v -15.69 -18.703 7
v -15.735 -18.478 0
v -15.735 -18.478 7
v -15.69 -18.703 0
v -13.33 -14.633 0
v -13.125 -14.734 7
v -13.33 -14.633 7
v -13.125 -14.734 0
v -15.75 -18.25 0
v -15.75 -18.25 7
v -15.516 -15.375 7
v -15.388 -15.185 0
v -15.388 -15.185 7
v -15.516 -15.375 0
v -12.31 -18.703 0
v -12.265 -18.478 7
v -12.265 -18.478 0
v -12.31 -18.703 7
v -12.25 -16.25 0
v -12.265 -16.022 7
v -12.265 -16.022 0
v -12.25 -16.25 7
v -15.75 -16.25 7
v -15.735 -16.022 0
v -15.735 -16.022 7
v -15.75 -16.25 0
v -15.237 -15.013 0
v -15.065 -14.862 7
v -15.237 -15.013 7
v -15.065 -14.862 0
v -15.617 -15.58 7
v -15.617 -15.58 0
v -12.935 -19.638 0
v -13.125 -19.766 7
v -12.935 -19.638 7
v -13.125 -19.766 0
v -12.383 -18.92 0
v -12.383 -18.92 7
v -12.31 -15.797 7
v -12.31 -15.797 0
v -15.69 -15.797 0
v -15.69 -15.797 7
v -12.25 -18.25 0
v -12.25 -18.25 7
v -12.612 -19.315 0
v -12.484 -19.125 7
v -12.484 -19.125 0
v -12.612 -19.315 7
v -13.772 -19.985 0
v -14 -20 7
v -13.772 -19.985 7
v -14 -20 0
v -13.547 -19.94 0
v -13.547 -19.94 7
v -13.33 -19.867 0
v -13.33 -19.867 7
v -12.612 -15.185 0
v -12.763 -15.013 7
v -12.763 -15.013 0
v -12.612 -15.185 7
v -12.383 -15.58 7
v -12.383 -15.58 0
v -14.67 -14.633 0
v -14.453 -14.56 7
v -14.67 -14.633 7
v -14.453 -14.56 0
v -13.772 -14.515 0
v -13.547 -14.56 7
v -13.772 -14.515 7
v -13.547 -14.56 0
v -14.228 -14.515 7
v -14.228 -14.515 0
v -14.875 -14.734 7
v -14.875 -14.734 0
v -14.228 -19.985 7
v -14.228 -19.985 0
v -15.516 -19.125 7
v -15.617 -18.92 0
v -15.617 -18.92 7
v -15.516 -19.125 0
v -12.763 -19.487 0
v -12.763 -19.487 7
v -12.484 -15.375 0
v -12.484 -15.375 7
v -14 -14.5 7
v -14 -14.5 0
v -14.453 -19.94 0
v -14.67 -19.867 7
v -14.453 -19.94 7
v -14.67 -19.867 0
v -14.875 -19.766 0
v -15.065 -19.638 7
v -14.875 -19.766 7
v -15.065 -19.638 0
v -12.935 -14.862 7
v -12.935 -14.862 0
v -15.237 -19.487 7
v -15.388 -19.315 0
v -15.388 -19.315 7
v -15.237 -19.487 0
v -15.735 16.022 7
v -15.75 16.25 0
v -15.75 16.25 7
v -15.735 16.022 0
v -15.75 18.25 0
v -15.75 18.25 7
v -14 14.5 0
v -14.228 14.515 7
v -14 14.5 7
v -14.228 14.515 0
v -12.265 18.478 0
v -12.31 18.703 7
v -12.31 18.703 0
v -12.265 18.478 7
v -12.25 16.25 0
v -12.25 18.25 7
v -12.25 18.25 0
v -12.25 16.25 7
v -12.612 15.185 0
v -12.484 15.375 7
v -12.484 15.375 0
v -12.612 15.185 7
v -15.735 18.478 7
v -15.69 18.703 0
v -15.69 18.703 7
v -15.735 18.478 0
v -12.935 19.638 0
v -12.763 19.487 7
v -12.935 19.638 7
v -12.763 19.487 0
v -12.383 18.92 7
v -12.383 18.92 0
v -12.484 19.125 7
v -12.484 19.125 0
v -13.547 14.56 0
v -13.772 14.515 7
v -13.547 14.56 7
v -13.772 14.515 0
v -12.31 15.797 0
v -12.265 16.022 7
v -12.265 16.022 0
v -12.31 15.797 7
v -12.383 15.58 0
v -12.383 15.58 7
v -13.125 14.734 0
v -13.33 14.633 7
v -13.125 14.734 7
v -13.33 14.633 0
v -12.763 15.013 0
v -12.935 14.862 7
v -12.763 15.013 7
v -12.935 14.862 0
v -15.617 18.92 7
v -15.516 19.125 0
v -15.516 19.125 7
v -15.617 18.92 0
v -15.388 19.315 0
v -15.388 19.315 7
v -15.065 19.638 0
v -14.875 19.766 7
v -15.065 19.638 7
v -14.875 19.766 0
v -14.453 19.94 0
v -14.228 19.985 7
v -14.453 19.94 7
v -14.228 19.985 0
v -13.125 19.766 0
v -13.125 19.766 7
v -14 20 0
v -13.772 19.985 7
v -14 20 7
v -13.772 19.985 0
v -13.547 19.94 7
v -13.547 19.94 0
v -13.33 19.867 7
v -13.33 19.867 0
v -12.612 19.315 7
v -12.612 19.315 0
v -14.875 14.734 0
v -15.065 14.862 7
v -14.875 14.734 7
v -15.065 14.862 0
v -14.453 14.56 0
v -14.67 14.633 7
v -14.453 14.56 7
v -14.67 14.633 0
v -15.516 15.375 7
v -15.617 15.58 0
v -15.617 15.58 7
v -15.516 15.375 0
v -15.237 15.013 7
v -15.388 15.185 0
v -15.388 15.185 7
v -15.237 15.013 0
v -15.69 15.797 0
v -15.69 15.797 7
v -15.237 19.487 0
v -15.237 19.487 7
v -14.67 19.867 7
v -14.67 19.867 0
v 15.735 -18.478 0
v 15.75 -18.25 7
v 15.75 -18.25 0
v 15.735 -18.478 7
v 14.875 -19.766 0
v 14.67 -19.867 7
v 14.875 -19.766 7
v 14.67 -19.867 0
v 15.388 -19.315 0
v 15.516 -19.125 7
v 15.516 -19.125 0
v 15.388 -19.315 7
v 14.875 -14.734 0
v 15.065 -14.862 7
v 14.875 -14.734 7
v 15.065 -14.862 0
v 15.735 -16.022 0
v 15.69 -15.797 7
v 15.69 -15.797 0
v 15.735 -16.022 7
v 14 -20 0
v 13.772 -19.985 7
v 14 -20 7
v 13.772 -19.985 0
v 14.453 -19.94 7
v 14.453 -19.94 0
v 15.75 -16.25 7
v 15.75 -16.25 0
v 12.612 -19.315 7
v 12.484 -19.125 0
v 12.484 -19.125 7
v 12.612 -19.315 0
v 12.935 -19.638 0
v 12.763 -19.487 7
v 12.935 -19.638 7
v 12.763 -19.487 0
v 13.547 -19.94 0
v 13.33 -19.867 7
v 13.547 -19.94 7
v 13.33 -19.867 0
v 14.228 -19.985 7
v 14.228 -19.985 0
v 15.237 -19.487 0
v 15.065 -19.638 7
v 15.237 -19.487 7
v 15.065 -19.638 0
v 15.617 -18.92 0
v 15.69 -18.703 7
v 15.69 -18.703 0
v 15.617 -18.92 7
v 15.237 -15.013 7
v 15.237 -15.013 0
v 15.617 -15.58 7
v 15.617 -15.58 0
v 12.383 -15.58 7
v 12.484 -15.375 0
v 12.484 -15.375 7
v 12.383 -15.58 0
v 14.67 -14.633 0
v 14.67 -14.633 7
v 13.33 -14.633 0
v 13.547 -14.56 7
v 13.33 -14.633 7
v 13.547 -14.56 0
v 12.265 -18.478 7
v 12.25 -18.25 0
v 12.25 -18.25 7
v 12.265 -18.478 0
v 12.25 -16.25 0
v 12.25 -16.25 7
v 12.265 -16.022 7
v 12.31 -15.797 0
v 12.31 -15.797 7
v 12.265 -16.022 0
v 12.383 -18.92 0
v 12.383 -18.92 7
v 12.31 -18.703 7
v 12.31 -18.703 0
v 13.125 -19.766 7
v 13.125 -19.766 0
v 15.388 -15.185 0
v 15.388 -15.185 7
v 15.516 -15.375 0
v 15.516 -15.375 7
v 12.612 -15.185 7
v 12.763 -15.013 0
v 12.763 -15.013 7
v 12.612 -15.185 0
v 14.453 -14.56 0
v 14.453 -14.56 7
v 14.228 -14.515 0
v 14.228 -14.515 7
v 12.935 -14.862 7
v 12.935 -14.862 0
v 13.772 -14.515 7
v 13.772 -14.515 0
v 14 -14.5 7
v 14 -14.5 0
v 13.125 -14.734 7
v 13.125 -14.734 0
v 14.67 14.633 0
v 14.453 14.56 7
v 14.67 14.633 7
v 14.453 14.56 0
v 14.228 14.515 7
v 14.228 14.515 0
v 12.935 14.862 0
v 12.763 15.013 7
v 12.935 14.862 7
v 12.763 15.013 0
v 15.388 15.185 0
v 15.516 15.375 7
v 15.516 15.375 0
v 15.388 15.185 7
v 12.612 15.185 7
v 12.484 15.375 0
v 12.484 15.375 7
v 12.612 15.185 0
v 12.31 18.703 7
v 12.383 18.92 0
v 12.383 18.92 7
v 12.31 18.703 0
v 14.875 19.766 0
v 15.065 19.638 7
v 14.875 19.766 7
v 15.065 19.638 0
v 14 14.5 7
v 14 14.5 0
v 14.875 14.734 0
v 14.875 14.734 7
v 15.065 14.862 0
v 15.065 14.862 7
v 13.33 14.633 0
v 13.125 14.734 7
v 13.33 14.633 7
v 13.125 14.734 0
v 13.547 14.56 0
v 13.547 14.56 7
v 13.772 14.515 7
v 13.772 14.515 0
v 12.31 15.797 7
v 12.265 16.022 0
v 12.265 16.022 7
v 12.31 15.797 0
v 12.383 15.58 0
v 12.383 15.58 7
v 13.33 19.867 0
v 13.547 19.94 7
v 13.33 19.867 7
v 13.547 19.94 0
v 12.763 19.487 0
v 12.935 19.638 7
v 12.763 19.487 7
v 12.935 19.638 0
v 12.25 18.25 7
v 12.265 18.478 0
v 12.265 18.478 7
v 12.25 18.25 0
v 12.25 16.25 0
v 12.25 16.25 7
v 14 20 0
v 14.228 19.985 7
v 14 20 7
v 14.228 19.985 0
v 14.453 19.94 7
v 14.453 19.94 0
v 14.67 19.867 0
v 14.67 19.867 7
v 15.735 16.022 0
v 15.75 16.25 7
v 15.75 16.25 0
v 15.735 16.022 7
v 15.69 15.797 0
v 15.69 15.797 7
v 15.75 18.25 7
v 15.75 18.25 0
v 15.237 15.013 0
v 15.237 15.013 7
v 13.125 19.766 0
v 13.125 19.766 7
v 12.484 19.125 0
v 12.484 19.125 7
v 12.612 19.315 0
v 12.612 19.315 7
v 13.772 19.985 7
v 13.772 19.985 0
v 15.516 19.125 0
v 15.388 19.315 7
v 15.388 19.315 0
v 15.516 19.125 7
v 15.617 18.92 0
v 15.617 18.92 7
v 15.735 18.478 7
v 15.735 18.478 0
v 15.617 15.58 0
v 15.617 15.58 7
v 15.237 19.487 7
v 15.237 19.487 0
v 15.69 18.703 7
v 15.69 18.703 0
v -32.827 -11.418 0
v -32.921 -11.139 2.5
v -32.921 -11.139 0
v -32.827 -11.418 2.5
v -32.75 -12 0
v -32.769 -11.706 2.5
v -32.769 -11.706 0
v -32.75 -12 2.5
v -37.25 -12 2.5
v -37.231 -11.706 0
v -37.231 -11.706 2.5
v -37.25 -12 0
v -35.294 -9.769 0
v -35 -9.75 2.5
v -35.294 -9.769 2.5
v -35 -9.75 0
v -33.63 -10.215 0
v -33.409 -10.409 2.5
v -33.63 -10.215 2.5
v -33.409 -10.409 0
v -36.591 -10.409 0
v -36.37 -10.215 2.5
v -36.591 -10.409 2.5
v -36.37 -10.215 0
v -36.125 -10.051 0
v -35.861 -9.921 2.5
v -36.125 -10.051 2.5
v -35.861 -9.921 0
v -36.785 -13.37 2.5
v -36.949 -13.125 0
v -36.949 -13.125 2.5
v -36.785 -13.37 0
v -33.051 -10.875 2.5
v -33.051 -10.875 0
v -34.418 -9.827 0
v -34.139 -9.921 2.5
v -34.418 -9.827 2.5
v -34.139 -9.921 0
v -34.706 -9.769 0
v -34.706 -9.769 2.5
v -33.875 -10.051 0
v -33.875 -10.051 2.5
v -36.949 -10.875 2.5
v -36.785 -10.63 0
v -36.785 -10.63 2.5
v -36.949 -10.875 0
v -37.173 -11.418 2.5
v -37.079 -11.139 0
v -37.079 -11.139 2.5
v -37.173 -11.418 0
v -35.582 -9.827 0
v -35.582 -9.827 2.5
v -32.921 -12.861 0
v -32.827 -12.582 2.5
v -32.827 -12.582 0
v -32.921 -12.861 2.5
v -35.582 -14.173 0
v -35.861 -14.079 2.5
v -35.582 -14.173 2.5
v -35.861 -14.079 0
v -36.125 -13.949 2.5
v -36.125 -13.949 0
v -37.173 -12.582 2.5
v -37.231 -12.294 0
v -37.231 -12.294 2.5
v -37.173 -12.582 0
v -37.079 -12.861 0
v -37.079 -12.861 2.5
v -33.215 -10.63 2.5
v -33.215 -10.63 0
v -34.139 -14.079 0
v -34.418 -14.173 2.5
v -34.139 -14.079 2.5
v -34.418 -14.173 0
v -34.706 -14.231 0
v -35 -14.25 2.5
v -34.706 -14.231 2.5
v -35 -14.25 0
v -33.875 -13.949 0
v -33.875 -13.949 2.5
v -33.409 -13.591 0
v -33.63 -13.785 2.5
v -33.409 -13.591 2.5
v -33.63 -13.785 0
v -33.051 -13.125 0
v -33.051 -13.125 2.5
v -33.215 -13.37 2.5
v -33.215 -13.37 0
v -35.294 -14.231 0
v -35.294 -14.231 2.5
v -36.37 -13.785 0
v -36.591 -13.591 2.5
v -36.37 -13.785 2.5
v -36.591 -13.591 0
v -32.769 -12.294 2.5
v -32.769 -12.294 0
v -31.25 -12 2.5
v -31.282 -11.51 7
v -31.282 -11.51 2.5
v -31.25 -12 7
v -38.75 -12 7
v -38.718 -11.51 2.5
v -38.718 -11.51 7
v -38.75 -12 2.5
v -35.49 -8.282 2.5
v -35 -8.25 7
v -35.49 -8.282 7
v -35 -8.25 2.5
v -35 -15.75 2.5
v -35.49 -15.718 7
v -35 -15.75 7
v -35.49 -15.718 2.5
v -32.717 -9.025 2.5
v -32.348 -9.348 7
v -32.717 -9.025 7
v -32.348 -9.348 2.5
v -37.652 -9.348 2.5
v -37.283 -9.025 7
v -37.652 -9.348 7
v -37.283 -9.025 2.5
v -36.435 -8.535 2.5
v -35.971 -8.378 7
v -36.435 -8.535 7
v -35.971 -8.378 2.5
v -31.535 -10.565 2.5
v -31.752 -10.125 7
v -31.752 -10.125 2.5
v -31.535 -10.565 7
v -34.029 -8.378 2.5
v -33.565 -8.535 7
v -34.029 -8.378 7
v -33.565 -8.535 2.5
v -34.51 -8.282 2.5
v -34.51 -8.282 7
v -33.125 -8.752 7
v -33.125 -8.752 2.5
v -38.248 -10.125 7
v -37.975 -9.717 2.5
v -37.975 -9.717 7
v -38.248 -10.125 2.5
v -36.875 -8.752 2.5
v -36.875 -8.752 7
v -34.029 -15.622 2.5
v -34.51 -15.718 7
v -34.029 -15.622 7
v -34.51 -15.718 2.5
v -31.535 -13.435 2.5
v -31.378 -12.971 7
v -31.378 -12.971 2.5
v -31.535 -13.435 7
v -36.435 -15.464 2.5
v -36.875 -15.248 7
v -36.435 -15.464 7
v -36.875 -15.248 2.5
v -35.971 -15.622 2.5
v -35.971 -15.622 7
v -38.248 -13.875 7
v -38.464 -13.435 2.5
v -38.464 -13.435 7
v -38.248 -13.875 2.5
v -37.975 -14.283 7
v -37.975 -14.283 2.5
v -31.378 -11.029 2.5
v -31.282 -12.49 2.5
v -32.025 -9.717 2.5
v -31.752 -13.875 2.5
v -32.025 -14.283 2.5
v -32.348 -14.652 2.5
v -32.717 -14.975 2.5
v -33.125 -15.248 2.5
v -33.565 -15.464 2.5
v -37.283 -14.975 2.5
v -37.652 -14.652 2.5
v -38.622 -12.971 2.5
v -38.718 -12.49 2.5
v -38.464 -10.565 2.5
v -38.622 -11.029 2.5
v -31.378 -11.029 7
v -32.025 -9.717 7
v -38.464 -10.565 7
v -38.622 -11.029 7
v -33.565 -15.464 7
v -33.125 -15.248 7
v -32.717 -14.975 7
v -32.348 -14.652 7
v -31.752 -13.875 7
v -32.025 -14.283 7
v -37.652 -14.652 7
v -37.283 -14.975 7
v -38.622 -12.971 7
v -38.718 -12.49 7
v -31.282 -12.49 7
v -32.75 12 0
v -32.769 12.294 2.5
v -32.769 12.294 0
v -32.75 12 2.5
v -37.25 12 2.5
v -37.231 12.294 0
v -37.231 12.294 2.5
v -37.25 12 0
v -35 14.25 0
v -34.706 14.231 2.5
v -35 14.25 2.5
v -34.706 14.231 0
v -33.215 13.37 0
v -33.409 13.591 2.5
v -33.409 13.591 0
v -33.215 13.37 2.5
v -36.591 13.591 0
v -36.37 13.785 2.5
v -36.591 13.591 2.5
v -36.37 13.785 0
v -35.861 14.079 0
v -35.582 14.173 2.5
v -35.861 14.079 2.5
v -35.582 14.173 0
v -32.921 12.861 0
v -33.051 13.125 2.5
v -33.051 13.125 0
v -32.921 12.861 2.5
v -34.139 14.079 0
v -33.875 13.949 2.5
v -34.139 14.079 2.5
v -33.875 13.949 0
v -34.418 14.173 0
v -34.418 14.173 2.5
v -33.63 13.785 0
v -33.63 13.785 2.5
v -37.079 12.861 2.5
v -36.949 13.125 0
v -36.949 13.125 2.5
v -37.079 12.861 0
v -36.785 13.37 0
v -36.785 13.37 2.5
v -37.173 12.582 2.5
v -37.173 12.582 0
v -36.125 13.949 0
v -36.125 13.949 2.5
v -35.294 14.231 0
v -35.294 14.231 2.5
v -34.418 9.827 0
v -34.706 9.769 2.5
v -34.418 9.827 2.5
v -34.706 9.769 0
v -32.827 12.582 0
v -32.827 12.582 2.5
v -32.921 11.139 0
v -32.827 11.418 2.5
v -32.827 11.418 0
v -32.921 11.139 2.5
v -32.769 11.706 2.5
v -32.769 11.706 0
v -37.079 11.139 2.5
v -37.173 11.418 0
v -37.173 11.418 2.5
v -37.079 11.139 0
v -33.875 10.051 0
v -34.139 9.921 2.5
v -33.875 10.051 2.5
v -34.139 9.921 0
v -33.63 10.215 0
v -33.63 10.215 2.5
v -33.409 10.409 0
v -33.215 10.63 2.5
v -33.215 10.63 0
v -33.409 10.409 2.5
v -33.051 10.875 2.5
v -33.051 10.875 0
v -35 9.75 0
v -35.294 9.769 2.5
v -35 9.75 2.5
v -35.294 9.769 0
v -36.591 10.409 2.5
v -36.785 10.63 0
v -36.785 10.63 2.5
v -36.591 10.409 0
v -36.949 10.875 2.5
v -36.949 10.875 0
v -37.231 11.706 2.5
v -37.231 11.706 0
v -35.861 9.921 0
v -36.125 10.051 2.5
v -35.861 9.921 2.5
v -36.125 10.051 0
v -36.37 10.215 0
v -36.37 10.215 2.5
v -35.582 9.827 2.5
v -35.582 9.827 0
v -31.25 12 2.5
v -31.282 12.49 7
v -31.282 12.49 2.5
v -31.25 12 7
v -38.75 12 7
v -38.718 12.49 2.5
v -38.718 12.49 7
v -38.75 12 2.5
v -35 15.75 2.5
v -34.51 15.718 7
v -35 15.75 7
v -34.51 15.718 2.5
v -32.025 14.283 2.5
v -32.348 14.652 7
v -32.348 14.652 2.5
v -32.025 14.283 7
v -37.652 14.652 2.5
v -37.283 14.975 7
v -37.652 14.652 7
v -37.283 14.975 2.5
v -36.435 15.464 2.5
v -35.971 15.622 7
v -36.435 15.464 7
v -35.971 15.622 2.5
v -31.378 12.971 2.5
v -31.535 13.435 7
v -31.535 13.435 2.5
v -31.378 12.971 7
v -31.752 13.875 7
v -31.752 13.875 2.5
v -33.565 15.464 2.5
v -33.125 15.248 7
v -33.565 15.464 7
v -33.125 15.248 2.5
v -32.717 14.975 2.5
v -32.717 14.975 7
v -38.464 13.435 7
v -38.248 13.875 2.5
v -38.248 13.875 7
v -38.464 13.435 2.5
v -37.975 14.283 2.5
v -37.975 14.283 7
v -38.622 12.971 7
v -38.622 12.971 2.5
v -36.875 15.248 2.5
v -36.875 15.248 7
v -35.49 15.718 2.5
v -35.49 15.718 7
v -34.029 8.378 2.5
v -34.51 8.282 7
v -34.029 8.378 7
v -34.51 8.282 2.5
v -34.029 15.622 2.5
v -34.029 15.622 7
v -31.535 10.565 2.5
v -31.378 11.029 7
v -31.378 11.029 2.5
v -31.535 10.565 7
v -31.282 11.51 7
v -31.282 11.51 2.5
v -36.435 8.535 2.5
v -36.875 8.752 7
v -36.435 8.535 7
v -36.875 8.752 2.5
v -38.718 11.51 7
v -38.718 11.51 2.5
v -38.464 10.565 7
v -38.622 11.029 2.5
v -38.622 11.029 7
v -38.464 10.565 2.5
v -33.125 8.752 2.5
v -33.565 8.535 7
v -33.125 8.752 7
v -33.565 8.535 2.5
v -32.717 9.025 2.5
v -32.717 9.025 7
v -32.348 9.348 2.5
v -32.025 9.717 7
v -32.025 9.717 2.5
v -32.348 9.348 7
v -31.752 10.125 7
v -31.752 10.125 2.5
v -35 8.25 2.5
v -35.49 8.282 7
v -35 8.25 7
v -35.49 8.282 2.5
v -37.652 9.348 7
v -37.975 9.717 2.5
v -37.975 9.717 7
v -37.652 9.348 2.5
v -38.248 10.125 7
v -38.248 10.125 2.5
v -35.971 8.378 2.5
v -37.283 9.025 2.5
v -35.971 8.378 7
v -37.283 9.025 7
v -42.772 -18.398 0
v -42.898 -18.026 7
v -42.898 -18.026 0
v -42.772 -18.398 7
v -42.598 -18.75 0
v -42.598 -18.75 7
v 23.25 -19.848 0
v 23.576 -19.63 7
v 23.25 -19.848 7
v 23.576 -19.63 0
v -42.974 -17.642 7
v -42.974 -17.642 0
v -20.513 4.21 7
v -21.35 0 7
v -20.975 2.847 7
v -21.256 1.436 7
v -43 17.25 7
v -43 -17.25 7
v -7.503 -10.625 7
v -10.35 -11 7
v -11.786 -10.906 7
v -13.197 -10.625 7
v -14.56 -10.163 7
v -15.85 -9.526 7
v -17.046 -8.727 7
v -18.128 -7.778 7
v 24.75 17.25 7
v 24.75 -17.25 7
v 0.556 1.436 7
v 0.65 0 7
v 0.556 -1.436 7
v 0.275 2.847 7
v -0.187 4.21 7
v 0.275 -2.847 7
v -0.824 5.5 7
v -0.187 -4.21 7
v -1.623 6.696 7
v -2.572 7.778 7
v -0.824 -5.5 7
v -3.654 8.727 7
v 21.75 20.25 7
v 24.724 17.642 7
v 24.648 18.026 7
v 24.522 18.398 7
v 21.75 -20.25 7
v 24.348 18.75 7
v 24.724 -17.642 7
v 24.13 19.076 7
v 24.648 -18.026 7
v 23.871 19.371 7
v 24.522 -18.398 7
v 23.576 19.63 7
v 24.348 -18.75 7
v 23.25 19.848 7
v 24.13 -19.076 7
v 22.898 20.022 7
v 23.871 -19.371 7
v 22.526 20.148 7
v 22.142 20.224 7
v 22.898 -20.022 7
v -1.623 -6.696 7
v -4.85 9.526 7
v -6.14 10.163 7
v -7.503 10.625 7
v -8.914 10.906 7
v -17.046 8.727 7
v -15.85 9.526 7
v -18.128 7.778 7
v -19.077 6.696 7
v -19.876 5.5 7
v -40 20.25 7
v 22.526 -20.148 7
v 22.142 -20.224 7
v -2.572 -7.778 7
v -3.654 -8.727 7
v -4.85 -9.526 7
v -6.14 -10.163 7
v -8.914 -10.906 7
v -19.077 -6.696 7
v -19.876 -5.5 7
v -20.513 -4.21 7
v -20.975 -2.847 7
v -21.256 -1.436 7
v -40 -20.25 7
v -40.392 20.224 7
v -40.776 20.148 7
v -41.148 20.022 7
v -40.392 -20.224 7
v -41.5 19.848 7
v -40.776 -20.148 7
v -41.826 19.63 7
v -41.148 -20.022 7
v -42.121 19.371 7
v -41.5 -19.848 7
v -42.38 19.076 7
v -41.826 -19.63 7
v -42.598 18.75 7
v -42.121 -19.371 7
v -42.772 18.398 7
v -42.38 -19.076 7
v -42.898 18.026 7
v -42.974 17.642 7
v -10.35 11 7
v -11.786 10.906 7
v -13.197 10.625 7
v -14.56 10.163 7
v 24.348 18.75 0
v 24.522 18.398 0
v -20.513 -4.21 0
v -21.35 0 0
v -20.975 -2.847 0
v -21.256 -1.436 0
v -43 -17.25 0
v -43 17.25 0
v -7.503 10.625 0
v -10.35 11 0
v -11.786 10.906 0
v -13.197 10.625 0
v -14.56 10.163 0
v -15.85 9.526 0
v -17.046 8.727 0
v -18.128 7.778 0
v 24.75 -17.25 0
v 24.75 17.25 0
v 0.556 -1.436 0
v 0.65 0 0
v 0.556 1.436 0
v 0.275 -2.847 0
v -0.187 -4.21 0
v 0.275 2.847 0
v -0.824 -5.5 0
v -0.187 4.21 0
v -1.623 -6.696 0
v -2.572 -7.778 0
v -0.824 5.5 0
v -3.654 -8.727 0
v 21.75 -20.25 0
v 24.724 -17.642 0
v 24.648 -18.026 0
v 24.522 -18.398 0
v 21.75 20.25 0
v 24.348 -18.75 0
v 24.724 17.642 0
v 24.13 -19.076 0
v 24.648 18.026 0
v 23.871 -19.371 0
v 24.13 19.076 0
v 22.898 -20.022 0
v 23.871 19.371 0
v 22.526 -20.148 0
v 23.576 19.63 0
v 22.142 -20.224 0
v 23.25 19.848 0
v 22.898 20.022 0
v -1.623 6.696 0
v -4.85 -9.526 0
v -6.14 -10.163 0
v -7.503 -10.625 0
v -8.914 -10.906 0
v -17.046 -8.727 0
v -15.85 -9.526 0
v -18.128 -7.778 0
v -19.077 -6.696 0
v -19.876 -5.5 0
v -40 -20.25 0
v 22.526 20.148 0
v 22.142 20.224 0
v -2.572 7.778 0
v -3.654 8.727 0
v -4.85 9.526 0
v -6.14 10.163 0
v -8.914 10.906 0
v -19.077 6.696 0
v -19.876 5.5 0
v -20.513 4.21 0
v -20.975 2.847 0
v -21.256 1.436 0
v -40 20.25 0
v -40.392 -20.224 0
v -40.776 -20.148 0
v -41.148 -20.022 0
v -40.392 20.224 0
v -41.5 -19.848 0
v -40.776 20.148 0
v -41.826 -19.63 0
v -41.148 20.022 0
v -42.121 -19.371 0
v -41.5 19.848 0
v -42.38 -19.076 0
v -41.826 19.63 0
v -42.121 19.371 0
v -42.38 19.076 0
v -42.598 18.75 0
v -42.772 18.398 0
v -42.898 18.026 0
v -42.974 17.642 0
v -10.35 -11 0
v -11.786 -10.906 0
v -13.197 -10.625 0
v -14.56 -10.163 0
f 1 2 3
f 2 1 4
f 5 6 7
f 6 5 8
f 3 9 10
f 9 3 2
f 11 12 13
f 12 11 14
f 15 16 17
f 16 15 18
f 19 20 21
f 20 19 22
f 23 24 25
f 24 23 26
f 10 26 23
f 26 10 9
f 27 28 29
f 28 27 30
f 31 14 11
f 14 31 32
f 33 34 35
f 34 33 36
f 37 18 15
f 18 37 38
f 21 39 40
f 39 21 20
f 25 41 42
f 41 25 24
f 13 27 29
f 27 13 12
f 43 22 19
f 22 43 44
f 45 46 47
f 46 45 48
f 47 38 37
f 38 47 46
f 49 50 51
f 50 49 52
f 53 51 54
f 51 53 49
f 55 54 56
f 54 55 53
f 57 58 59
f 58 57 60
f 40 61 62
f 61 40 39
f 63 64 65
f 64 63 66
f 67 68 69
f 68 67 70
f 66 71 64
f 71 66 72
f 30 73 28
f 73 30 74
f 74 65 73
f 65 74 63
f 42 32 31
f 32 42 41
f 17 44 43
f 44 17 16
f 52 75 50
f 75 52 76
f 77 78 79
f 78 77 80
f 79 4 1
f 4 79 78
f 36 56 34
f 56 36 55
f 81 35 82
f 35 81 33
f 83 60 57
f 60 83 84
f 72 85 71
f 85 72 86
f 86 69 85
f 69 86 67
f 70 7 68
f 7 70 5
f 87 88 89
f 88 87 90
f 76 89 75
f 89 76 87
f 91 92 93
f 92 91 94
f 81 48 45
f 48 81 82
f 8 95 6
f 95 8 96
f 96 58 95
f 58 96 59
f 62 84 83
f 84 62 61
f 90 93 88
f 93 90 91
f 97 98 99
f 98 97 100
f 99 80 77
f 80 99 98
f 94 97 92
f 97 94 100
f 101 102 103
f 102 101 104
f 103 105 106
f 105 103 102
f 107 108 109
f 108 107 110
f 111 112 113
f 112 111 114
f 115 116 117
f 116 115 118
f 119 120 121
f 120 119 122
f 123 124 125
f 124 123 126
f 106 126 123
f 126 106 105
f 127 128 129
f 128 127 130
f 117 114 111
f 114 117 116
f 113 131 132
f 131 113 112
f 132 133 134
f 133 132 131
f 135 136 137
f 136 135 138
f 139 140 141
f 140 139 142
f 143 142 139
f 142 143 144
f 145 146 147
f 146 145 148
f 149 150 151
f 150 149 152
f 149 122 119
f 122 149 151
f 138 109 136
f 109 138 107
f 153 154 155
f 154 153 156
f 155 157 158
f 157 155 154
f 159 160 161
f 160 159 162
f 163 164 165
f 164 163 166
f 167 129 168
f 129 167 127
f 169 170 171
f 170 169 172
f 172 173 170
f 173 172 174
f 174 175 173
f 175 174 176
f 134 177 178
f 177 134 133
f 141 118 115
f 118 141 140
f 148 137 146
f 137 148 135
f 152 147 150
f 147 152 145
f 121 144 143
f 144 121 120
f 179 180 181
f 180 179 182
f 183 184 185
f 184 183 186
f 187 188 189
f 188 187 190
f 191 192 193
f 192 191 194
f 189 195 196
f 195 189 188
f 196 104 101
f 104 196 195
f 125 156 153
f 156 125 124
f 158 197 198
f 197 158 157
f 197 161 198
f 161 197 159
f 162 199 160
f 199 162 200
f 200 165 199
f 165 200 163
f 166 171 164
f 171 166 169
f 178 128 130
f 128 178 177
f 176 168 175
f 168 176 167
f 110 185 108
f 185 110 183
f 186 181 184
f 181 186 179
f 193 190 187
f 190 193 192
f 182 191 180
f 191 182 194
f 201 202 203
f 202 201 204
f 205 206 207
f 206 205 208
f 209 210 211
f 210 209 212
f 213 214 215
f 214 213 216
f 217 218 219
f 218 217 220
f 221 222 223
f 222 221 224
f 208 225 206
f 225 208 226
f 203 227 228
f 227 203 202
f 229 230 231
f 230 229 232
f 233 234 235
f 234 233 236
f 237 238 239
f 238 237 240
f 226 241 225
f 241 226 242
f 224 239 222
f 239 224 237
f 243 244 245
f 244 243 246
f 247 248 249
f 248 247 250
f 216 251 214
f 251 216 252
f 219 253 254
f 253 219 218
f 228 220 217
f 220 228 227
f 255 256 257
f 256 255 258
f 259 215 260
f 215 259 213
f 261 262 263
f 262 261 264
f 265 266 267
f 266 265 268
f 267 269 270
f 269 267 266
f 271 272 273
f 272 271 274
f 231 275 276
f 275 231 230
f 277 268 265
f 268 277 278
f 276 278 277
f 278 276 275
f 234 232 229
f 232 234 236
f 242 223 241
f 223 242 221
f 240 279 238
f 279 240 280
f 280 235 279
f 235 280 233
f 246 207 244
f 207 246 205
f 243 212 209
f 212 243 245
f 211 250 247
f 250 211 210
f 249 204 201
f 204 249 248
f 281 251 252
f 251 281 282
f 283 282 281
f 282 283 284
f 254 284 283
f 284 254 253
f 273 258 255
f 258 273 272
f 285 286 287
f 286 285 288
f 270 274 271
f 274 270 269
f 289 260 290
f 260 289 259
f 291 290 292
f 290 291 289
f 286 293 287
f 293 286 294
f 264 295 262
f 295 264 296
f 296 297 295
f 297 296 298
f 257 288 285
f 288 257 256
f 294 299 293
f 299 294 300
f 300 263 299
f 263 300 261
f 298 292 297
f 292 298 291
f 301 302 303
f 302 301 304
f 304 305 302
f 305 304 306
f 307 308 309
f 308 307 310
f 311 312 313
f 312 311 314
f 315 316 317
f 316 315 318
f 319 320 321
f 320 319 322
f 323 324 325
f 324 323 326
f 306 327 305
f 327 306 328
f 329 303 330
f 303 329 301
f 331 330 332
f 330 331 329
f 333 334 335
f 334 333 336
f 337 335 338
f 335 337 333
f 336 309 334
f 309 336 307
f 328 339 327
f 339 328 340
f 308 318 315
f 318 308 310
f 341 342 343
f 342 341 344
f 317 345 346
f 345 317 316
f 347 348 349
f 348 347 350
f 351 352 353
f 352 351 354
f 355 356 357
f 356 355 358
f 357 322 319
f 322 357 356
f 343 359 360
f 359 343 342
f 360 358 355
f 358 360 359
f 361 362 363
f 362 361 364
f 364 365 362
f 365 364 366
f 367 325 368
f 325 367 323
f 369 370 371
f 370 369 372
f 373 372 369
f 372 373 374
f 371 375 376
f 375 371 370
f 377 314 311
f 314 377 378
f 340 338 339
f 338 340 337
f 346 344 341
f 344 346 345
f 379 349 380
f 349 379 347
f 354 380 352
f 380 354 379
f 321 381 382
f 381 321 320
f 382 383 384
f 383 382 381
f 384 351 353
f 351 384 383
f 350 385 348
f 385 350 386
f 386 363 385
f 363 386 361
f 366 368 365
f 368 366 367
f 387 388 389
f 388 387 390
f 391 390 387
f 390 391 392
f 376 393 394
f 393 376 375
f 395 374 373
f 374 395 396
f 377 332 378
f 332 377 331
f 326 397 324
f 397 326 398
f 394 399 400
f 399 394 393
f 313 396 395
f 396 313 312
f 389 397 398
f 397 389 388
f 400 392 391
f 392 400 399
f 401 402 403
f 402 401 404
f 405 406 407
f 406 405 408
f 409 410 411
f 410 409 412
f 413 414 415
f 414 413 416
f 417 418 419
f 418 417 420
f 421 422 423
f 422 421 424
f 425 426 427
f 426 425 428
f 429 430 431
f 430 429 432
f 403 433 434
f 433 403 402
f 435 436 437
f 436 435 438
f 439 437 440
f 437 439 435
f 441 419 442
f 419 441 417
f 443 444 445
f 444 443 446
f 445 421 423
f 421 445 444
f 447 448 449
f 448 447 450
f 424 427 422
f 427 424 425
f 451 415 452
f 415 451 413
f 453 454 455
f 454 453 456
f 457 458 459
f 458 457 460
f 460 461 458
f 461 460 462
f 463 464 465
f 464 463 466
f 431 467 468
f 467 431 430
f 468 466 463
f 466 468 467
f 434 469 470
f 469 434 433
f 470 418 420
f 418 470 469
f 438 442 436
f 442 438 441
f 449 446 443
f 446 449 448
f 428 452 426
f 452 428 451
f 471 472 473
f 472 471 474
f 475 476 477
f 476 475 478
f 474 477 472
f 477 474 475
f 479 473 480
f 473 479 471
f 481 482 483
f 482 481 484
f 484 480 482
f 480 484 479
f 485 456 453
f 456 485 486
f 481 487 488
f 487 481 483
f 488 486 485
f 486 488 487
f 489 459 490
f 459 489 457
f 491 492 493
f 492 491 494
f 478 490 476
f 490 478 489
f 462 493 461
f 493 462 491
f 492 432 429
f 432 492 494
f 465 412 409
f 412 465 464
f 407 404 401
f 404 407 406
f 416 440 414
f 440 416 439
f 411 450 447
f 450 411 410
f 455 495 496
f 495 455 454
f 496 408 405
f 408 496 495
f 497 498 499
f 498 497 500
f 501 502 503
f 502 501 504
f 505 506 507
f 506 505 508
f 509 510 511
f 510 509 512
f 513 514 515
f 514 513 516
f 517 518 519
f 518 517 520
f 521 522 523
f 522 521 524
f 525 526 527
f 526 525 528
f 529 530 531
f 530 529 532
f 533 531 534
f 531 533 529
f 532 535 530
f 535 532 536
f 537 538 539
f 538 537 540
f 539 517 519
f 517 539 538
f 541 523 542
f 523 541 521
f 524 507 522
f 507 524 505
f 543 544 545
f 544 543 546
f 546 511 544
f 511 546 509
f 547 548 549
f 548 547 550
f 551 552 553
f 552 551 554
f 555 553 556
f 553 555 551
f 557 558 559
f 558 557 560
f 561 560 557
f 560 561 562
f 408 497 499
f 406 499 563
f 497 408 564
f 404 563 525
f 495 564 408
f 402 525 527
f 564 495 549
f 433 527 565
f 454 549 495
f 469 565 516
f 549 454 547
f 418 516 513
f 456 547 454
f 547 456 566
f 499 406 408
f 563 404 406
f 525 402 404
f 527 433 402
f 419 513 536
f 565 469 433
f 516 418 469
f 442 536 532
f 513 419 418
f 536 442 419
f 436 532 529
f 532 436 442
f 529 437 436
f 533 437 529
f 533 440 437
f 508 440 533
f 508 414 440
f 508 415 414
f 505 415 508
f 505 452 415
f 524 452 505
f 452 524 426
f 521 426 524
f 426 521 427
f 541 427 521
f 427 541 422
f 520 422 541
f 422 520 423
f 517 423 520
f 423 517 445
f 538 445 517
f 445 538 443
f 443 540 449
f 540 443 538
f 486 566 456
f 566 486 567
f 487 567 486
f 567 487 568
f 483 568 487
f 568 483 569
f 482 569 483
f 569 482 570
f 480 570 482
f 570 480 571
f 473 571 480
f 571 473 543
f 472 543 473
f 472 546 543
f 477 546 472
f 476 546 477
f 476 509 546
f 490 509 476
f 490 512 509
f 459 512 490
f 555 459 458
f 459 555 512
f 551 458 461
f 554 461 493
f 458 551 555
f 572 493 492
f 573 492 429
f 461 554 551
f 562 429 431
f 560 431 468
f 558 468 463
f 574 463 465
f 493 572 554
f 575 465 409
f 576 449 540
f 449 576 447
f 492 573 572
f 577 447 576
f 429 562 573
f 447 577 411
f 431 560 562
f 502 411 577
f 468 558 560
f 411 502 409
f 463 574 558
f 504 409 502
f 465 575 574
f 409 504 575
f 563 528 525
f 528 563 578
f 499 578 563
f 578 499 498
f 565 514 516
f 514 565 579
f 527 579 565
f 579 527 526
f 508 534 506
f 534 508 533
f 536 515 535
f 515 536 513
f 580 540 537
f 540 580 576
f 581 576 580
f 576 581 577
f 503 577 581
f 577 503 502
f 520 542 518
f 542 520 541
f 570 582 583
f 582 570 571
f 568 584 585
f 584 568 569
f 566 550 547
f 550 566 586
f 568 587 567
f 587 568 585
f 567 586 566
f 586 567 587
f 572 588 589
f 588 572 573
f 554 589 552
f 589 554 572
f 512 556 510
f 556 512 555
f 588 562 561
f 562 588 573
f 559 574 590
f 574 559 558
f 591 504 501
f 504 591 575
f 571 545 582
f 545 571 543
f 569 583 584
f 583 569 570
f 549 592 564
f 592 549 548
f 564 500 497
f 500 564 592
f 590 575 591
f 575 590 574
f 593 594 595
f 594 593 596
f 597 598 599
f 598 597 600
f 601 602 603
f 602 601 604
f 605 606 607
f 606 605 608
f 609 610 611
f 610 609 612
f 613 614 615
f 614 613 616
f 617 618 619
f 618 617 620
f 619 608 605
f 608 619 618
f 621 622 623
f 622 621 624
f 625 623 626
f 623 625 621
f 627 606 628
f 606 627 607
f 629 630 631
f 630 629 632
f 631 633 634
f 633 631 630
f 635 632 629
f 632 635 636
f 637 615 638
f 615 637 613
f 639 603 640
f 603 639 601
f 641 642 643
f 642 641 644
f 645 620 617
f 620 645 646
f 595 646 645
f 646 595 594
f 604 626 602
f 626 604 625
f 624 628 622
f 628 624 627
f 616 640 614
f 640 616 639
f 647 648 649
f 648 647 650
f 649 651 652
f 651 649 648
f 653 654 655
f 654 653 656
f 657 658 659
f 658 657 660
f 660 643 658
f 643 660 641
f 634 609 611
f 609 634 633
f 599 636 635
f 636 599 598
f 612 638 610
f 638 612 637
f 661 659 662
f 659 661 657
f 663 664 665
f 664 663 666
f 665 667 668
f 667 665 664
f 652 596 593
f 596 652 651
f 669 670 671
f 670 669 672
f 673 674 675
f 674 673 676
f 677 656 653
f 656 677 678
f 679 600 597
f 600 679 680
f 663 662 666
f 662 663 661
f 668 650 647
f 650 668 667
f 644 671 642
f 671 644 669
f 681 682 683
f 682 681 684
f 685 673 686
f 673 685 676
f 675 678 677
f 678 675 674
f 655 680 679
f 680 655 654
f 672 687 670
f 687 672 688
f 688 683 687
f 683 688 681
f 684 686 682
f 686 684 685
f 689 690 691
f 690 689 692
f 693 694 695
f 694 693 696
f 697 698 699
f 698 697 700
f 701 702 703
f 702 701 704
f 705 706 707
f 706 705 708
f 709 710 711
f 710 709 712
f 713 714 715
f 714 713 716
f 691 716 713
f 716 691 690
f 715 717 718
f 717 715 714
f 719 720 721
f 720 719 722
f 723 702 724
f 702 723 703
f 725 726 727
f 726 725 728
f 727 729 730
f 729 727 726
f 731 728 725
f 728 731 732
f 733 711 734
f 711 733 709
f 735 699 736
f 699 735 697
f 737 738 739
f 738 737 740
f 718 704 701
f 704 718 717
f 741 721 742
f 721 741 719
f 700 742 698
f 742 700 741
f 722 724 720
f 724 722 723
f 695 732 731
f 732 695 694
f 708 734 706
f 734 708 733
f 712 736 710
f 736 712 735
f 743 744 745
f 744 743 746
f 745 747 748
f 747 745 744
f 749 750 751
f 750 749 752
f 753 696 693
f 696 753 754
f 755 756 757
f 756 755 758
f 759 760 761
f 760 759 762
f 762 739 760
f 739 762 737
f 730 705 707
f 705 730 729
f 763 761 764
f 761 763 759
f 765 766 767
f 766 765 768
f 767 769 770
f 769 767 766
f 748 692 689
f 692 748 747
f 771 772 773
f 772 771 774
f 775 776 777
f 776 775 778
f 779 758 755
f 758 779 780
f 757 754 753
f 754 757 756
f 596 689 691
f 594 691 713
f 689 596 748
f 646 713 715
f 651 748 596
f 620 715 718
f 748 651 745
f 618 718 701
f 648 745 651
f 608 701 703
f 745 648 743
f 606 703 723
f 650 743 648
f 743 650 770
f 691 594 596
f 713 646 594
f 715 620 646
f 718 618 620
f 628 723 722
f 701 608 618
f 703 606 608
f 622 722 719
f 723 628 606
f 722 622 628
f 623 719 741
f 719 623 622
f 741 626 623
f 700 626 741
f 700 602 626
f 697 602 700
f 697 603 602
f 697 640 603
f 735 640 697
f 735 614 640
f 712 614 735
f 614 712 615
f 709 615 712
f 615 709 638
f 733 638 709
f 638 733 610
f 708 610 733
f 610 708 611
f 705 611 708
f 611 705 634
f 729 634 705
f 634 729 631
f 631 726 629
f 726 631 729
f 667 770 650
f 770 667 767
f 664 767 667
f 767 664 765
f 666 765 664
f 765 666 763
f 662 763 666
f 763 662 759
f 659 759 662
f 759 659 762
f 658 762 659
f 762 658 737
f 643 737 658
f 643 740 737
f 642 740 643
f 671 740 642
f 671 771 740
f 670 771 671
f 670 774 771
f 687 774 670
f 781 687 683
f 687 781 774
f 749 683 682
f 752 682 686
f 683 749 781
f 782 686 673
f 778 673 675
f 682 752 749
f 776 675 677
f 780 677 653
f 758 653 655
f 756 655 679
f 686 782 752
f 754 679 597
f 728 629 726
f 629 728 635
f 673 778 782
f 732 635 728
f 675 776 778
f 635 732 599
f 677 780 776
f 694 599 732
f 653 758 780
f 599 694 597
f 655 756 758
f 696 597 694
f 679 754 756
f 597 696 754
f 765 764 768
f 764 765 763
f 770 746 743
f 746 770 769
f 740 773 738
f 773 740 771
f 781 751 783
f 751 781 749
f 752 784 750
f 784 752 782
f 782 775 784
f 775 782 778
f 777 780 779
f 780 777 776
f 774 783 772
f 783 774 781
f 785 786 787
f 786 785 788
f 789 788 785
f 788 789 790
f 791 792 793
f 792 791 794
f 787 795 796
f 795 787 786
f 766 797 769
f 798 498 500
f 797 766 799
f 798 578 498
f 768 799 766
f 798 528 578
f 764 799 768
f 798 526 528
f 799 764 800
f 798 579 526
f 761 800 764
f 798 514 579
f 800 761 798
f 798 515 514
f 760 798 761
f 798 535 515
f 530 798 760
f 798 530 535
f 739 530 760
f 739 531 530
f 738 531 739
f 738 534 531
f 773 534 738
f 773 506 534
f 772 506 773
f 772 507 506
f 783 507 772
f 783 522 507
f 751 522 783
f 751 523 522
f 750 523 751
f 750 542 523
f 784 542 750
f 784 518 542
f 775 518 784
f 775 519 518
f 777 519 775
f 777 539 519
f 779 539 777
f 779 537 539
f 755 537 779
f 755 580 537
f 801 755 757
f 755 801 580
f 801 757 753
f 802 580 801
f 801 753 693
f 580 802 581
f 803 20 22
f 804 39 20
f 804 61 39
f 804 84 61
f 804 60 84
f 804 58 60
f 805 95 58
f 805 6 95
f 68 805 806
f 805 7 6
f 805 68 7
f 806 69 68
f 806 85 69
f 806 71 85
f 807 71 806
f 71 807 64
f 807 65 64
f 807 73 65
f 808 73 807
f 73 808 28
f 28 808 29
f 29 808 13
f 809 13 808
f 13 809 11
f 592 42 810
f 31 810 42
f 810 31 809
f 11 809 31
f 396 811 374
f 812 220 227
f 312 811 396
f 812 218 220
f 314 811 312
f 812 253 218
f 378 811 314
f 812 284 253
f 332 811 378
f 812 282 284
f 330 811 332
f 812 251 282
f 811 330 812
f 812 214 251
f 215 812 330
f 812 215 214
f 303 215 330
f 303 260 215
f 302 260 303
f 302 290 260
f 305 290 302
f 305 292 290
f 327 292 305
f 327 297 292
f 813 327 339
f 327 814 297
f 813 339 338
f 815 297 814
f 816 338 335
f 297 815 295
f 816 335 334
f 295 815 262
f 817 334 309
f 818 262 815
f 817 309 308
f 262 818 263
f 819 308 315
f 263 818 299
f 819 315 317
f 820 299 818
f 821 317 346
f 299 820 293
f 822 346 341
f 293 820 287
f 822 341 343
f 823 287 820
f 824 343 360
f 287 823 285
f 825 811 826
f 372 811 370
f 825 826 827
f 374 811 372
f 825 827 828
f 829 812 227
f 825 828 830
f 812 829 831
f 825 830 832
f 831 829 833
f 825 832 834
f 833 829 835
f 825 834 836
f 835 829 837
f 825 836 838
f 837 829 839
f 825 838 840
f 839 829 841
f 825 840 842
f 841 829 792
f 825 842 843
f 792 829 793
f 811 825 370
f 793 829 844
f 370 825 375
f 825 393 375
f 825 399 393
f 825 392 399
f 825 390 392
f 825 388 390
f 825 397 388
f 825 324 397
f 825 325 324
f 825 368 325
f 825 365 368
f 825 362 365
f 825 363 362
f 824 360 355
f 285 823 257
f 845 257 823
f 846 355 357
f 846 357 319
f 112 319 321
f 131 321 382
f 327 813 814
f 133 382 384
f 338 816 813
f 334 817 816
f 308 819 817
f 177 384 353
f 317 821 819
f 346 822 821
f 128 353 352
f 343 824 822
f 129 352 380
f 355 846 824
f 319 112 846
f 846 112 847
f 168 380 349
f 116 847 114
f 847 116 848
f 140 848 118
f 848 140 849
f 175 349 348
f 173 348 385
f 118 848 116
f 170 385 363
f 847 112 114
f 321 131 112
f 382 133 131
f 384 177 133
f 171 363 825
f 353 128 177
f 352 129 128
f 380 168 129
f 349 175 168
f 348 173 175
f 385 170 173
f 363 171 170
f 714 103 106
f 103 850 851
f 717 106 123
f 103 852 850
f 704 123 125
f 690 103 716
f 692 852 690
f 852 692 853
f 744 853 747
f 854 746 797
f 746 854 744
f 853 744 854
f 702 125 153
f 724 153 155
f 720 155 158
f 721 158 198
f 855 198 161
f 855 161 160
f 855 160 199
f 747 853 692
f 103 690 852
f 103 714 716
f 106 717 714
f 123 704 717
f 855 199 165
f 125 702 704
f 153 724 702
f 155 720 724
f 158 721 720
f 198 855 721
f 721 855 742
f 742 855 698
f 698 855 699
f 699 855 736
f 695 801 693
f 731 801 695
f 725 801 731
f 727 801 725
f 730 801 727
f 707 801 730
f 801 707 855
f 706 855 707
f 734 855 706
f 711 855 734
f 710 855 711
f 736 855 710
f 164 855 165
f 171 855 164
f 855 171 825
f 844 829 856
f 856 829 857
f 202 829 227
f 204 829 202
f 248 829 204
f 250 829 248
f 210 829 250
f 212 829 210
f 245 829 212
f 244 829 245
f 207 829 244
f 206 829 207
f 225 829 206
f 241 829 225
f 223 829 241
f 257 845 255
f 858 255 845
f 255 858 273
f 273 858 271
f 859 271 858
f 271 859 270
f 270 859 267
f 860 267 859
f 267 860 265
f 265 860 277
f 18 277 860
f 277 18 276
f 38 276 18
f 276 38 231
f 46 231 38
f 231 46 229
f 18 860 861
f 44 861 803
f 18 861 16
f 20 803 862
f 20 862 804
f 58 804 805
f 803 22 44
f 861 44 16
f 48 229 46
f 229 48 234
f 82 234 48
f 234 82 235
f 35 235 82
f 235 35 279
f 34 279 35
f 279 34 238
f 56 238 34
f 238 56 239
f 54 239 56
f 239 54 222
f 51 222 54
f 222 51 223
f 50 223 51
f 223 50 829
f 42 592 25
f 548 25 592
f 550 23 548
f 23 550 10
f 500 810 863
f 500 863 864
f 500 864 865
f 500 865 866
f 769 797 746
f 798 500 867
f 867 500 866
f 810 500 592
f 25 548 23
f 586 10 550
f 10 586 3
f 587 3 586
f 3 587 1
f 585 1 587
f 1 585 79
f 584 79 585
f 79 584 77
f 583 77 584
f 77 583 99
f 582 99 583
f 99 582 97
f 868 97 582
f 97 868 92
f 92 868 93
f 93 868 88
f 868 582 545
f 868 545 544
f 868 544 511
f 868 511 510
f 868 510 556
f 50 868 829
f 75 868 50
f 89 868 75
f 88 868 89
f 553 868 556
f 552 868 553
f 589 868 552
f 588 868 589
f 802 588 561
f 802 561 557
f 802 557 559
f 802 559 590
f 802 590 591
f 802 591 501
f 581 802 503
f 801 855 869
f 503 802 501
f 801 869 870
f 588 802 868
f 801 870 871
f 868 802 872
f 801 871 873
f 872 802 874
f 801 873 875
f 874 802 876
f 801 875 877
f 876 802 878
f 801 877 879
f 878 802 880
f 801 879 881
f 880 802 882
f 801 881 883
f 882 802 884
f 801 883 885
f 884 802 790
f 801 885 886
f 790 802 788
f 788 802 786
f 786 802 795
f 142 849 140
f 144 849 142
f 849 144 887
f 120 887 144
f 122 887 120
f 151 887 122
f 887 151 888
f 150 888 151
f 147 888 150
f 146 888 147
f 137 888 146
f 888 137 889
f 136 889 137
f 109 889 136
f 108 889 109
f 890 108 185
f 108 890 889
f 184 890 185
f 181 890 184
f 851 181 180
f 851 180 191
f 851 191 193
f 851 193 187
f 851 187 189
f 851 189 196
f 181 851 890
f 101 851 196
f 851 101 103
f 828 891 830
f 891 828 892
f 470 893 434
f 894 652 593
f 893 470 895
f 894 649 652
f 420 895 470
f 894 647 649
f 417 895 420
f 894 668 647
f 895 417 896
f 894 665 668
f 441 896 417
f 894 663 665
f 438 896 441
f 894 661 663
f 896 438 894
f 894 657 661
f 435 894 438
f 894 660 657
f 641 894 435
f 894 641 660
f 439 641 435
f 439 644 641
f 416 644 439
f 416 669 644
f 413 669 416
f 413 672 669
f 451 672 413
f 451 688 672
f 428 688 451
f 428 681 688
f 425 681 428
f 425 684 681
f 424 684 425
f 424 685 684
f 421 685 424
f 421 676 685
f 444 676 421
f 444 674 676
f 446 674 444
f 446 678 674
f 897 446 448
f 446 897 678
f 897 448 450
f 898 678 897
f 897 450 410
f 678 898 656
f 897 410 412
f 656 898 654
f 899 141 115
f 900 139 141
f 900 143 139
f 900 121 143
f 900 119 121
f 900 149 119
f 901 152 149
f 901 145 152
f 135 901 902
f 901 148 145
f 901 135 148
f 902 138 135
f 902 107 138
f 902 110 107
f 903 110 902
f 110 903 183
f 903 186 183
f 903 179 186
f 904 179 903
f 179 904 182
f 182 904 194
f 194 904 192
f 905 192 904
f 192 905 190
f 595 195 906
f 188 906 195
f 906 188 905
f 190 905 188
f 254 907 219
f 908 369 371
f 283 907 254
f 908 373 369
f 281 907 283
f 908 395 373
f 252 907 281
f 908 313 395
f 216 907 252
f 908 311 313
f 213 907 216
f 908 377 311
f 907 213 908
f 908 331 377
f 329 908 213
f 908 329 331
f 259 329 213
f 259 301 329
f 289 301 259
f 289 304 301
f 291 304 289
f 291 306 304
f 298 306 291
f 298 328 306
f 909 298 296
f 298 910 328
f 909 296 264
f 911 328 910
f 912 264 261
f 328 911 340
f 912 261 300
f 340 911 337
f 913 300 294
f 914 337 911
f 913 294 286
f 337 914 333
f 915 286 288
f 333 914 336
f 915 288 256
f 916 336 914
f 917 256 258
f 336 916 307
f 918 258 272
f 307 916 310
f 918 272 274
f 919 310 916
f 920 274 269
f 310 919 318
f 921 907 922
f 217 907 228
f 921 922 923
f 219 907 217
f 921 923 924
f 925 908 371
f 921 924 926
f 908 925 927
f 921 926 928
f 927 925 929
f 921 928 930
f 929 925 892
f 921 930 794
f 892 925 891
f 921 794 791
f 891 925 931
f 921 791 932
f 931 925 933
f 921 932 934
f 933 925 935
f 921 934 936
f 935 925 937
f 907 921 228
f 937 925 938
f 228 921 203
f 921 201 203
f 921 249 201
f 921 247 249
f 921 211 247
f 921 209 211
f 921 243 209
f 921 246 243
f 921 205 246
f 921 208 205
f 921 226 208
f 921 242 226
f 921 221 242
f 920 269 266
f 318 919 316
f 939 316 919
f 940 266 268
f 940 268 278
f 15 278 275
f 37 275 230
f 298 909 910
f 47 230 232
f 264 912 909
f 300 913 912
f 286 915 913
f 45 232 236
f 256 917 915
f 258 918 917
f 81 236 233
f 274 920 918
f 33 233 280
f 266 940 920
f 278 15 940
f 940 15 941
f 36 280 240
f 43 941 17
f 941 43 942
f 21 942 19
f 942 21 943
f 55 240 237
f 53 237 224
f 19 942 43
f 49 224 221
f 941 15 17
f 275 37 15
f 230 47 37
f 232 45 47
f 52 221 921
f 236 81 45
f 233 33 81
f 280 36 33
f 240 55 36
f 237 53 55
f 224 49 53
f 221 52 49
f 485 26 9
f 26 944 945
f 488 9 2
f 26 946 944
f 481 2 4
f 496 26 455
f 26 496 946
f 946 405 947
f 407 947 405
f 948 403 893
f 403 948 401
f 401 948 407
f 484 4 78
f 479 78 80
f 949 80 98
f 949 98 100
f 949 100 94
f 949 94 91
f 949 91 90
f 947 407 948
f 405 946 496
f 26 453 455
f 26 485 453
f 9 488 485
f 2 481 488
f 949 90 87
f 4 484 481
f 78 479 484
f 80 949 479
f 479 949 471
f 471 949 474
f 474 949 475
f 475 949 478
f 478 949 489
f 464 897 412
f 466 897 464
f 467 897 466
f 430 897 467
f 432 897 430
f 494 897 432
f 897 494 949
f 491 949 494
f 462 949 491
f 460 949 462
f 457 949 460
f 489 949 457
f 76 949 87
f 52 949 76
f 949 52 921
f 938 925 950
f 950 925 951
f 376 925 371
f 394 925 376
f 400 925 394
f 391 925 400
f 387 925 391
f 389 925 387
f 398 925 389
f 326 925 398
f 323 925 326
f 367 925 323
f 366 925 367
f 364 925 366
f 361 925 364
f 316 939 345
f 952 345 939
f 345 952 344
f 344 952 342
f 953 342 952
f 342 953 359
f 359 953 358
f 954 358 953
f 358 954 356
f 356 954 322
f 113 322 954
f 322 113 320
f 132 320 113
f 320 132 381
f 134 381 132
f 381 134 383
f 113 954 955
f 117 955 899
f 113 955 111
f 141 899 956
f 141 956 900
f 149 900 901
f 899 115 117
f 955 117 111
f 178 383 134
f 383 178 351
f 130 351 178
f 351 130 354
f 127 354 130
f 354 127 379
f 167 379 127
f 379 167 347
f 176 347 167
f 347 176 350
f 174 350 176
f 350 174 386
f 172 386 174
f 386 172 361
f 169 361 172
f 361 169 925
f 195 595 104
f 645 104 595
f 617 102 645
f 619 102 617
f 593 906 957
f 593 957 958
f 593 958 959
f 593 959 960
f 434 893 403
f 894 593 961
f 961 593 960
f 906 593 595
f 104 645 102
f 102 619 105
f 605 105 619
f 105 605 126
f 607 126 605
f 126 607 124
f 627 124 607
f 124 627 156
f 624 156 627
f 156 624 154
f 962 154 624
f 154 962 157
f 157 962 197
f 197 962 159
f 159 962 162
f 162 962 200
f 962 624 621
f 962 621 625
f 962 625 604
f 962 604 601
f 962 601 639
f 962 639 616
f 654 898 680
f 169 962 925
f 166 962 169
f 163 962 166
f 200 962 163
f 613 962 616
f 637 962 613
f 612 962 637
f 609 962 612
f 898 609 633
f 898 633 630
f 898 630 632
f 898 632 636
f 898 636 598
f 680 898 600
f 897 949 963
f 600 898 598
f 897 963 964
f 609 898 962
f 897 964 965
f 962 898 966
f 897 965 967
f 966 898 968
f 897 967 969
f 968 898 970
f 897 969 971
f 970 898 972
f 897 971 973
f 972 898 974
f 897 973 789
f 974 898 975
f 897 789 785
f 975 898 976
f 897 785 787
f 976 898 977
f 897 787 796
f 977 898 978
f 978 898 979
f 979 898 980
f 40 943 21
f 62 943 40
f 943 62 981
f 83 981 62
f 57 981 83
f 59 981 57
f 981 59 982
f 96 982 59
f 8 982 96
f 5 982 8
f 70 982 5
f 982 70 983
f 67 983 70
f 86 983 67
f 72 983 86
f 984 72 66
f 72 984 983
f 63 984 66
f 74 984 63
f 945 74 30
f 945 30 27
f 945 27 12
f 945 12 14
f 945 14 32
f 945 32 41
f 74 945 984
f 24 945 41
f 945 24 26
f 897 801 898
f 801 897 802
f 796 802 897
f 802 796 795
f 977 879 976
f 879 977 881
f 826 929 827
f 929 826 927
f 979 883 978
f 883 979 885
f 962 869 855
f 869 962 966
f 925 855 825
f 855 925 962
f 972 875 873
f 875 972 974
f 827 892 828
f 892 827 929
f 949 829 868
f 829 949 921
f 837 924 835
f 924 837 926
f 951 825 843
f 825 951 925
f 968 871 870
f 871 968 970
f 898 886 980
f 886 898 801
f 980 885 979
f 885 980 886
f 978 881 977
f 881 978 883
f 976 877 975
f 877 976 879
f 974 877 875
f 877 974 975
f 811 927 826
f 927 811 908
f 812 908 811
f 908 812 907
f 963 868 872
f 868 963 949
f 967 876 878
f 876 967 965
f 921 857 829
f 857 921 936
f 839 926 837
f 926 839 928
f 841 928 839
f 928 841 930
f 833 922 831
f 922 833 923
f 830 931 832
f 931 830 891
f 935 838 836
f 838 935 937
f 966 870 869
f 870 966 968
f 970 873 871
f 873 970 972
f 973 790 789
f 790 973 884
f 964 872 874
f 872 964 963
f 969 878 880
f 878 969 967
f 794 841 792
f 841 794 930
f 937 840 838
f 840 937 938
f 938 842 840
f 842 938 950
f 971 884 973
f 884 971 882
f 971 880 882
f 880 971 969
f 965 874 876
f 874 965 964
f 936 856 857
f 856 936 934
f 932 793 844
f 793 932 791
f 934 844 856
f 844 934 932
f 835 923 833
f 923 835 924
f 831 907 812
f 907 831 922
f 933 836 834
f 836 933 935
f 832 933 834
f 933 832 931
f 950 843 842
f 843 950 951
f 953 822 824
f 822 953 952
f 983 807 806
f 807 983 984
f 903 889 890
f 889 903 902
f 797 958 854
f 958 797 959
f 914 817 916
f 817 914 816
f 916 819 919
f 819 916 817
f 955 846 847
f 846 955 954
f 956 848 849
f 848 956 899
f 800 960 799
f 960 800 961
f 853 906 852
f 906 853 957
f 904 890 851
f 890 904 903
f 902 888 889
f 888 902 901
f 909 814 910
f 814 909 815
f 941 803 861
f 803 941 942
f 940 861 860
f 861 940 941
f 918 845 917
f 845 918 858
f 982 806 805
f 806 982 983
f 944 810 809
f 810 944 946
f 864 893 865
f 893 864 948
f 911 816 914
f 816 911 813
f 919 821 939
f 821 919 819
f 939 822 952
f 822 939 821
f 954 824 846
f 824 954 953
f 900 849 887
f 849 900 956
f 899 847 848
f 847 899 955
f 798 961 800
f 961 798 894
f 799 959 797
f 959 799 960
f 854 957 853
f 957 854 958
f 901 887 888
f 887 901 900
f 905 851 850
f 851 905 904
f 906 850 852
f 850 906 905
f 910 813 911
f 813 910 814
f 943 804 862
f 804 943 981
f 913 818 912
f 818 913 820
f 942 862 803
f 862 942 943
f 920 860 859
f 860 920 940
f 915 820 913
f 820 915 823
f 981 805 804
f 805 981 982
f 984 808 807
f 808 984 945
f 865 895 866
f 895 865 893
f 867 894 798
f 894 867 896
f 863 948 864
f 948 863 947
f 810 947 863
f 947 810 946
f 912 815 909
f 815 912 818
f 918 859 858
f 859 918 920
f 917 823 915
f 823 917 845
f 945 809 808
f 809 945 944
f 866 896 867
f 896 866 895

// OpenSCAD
$fn=48;
module bench_base() {
    difference() {
        // Compact adapter stays inside the rotating bridge radius. Negative-x
        // anchors avoid the rear-arm sector; mount40mm ahead of a vertical board.
        linear_extrude(7) hull() for(x=[-40,21.75],y=[-17.25,17.25])
            translate([x,y]) circle(d=6);
        for(x=[-14,14],y=[-17.25,17.25]) hull()
            for(dy=[-1,1]) translate([x,y+dy,-1]) cylinder(d=3.5,h=9);
        translate([-10.35,0,-1]) cylinder(d=22,h=9);
        for(y=[-12,12]) {
            translate([-35,y,-1]) cylinder(d=4.5,h=9);
            translate([-35,y,2.5]) cylinder(d=7.5,h=5);
        }
    }
}
bench_base();
